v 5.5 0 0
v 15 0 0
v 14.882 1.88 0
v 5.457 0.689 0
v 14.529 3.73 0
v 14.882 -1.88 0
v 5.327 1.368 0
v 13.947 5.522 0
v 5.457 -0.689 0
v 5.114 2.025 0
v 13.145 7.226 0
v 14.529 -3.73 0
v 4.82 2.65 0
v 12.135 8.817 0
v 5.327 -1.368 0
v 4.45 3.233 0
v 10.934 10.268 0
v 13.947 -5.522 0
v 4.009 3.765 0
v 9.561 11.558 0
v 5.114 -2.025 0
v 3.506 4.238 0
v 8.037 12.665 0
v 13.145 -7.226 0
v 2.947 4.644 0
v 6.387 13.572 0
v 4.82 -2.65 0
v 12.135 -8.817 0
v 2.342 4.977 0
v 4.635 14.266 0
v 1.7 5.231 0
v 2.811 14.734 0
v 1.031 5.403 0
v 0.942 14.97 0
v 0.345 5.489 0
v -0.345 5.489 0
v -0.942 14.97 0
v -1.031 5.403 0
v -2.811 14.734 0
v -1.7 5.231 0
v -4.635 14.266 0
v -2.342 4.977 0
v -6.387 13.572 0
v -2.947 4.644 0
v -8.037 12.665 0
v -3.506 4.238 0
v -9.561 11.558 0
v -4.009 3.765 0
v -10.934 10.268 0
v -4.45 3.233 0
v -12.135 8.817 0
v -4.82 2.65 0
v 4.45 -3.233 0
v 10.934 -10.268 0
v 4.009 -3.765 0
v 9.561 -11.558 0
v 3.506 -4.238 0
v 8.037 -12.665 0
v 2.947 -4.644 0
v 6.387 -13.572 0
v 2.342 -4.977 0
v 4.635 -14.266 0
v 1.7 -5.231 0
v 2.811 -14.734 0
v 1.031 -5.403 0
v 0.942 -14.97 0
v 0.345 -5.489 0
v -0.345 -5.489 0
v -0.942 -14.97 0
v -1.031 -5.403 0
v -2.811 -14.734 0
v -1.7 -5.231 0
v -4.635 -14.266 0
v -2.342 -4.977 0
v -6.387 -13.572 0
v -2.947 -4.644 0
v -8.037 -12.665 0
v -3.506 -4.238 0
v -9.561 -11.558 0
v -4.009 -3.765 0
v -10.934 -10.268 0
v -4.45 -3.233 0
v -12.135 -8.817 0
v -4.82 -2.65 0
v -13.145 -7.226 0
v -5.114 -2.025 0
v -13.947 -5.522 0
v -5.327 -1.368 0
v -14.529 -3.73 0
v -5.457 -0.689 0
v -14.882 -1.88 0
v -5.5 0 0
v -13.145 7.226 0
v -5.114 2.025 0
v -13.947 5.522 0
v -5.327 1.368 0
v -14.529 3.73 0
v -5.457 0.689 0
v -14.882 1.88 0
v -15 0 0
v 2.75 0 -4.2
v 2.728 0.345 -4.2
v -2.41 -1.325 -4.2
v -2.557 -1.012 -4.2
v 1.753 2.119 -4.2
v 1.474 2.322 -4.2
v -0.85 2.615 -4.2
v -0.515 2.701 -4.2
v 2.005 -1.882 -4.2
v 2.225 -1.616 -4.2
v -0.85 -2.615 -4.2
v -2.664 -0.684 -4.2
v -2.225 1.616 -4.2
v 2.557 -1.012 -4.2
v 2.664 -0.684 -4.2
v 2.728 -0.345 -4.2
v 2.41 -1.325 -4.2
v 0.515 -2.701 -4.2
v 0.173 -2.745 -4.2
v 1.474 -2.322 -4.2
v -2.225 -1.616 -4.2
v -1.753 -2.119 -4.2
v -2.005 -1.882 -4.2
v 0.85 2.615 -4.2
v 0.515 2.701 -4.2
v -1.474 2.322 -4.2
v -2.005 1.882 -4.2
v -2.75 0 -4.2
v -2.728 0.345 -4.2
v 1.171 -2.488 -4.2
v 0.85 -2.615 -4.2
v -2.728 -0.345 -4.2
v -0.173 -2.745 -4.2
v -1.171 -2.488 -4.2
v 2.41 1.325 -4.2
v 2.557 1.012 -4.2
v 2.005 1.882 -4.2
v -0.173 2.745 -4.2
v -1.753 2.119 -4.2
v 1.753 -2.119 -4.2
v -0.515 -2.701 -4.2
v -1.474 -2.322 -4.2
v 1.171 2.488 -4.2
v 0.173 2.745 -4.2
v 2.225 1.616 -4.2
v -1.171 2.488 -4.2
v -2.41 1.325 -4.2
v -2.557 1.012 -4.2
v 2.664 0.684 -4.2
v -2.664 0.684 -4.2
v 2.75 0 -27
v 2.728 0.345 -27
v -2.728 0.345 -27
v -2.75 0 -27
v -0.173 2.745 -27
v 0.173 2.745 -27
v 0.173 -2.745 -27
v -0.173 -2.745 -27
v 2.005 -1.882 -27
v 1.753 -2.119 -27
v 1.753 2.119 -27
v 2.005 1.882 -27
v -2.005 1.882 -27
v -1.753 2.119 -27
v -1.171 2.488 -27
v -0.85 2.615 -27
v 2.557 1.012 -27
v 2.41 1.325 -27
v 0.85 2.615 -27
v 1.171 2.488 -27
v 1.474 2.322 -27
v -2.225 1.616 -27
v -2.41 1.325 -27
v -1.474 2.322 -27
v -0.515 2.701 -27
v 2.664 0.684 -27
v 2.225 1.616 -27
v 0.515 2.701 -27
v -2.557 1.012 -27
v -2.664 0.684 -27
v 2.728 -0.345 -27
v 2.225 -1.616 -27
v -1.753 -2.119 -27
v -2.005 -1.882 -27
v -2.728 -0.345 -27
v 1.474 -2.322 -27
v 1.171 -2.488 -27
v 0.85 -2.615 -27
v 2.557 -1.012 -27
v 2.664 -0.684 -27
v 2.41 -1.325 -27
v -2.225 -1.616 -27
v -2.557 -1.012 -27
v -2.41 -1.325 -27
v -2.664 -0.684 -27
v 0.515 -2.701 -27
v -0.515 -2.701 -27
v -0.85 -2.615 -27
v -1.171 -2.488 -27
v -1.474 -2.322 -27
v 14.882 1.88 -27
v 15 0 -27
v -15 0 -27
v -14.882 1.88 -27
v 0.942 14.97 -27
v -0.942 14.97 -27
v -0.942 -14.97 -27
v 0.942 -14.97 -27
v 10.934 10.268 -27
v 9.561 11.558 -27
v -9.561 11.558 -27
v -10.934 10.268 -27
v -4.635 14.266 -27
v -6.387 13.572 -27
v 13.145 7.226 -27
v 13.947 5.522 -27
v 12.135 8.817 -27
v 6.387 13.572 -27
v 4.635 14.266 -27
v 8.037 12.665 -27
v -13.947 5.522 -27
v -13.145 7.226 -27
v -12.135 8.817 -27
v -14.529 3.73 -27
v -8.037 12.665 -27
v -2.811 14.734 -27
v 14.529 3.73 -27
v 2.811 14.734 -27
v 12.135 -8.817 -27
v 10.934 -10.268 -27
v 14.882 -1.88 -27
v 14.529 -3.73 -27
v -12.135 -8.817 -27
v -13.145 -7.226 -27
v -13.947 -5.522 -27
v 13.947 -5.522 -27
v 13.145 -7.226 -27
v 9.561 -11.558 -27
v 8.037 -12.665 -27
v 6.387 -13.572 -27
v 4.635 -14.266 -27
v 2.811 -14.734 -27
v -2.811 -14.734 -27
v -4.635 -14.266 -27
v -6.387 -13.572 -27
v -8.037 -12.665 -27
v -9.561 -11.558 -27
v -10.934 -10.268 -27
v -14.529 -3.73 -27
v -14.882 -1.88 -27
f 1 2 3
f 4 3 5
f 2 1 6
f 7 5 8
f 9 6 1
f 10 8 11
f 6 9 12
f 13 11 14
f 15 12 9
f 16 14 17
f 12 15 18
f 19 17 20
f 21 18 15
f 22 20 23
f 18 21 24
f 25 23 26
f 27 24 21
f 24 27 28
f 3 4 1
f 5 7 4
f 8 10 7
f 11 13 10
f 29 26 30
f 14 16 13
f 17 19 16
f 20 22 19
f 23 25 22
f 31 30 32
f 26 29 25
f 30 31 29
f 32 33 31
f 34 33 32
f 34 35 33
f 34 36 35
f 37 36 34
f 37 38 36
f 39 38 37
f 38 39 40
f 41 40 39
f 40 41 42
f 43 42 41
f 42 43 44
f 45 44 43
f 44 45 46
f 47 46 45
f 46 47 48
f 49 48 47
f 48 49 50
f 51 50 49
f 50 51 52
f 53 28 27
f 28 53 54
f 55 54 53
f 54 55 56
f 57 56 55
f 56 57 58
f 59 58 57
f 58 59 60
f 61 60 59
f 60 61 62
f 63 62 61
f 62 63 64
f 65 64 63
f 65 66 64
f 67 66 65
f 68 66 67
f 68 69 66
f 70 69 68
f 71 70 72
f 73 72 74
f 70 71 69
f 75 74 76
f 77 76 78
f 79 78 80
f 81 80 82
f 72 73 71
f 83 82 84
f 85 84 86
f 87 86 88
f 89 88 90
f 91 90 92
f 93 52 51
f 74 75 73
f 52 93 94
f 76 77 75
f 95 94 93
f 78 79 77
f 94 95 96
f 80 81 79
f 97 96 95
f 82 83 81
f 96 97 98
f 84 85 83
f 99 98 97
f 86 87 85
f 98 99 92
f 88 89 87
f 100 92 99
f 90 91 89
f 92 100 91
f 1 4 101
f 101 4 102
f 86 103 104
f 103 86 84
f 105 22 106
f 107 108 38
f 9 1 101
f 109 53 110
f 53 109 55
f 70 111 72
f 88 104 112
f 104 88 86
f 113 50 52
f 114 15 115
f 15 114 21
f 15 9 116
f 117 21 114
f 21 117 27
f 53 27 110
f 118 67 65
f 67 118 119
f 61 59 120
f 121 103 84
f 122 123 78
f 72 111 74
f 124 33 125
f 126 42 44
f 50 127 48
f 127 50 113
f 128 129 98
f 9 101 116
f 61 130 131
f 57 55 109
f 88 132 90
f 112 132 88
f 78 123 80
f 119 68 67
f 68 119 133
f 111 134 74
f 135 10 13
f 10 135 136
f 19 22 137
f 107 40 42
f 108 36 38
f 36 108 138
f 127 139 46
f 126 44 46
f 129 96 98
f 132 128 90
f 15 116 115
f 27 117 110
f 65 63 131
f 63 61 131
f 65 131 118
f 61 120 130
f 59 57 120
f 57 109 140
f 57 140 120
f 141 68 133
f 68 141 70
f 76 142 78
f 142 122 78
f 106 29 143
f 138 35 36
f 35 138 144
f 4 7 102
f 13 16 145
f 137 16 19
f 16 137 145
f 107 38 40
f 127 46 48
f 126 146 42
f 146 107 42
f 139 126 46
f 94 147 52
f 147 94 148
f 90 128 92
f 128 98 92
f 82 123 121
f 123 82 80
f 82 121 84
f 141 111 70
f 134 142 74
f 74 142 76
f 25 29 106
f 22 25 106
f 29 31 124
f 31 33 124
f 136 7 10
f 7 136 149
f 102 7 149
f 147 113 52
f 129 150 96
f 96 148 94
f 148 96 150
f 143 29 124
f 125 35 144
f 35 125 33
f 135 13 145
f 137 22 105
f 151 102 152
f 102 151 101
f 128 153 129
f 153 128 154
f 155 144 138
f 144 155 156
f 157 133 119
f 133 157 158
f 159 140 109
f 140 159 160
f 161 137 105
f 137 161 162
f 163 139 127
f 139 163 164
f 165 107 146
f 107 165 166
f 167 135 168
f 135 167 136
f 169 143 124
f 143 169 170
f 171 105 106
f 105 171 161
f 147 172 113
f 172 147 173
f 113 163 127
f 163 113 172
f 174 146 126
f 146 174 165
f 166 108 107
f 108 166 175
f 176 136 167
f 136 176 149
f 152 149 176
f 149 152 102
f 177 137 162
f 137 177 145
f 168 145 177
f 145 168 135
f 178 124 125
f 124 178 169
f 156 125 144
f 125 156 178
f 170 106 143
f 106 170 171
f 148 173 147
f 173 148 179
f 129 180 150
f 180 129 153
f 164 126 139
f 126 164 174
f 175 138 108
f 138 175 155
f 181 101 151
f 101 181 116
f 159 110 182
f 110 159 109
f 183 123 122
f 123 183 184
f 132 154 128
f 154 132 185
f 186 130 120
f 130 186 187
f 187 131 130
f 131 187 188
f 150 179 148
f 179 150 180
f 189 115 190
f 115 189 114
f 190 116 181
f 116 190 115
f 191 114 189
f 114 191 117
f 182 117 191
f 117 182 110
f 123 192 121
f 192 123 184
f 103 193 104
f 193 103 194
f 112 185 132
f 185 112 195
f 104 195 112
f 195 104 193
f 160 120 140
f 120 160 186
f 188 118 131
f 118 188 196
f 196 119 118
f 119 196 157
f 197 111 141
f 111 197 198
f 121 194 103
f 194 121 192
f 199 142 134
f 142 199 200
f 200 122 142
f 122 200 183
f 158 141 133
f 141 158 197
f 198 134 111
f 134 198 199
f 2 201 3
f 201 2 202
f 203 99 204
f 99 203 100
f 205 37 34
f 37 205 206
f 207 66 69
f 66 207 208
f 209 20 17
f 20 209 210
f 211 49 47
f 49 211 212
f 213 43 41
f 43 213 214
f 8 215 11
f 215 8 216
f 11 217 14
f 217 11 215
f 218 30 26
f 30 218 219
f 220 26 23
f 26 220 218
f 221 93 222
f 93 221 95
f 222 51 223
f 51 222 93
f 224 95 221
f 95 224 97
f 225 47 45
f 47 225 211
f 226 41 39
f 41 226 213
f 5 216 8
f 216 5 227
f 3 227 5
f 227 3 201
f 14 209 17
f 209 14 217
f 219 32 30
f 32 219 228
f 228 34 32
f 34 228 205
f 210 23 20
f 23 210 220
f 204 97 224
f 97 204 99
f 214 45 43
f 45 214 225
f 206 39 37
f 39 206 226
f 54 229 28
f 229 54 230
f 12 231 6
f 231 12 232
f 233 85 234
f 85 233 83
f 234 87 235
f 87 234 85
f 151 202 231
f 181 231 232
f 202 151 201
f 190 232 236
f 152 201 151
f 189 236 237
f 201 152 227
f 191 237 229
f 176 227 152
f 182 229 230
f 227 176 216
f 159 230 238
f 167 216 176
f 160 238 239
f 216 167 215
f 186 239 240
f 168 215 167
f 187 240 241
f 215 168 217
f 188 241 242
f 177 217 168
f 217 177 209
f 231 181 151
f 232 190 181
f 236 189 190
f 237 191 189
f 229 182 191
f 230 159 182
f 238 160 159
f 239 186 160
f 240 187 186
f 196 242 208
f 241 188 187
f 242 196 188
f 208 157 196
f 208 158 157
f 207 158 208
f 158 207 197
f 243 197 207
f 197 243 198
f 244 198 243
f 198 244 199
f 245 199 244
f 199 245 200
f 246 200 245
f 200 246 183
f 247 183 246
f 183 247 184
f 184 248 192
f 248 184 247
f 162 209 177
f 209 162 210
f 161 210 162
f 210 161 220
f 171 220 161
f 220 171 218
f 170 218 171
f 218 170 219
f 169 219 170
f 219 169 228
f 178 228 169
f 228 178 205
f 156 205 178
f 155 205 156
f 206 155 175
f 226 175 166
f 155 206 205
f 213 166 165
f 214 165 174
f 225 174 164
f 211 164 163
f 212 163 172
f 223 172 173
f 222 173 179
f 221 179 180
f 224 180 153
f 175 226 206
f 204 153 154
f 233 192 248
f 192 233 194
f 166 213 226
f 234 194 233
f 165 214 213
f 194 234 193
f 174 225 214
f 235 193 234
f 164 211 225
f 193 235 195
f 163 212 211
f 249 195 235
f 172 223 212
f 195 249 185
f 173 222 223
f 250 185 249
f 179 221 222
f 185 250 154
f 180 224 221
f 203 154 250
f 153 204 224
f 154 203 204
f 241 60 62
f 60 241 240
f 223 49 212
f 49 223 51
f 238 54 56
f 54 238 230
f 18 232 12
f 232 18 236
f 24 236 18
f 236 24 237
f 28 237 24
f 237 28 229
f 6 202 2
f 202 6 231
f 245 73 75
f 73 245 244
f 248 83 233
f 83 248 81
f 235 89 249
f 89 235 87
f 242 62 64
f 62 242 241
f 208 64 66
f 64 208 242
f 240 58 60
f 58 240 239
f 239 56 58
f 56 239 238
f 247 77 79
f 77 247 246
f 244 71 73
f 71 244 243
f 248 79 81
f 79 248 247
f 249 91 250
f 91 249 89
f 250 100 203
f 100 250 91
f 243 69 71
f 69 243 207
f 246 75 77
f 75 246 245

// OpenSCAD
$fn = 50;

difference() {
	union() {
		translate(v = [0, 0, -27.0]) {
			cylinder(h = 27, r = 15.0);
		}
	}
	union() {
		translate(v = [0, 0, 0]) {
			rotate(a = [0, 0, 0]) {
				difference() {
					union() {
						translate(v = [0, 0, -30.0]) {
							cylinder(h = 30, r = 2.25);
						}
						translate(v = [0, 0, -4.2]) {
							cylinder(h = 4.2, r1 = 2.75, r2 = 5.5);
						}
						translate(v = [0, 0, -30.0]) {
							cylinder(h = 30, r = 2.75);
						}
						translate(v = [0, 0, -30.0]) {
							cylinder(h = 30, r = 2.25);
						}
					}
					union();
				}
			}
		}
	}
}
